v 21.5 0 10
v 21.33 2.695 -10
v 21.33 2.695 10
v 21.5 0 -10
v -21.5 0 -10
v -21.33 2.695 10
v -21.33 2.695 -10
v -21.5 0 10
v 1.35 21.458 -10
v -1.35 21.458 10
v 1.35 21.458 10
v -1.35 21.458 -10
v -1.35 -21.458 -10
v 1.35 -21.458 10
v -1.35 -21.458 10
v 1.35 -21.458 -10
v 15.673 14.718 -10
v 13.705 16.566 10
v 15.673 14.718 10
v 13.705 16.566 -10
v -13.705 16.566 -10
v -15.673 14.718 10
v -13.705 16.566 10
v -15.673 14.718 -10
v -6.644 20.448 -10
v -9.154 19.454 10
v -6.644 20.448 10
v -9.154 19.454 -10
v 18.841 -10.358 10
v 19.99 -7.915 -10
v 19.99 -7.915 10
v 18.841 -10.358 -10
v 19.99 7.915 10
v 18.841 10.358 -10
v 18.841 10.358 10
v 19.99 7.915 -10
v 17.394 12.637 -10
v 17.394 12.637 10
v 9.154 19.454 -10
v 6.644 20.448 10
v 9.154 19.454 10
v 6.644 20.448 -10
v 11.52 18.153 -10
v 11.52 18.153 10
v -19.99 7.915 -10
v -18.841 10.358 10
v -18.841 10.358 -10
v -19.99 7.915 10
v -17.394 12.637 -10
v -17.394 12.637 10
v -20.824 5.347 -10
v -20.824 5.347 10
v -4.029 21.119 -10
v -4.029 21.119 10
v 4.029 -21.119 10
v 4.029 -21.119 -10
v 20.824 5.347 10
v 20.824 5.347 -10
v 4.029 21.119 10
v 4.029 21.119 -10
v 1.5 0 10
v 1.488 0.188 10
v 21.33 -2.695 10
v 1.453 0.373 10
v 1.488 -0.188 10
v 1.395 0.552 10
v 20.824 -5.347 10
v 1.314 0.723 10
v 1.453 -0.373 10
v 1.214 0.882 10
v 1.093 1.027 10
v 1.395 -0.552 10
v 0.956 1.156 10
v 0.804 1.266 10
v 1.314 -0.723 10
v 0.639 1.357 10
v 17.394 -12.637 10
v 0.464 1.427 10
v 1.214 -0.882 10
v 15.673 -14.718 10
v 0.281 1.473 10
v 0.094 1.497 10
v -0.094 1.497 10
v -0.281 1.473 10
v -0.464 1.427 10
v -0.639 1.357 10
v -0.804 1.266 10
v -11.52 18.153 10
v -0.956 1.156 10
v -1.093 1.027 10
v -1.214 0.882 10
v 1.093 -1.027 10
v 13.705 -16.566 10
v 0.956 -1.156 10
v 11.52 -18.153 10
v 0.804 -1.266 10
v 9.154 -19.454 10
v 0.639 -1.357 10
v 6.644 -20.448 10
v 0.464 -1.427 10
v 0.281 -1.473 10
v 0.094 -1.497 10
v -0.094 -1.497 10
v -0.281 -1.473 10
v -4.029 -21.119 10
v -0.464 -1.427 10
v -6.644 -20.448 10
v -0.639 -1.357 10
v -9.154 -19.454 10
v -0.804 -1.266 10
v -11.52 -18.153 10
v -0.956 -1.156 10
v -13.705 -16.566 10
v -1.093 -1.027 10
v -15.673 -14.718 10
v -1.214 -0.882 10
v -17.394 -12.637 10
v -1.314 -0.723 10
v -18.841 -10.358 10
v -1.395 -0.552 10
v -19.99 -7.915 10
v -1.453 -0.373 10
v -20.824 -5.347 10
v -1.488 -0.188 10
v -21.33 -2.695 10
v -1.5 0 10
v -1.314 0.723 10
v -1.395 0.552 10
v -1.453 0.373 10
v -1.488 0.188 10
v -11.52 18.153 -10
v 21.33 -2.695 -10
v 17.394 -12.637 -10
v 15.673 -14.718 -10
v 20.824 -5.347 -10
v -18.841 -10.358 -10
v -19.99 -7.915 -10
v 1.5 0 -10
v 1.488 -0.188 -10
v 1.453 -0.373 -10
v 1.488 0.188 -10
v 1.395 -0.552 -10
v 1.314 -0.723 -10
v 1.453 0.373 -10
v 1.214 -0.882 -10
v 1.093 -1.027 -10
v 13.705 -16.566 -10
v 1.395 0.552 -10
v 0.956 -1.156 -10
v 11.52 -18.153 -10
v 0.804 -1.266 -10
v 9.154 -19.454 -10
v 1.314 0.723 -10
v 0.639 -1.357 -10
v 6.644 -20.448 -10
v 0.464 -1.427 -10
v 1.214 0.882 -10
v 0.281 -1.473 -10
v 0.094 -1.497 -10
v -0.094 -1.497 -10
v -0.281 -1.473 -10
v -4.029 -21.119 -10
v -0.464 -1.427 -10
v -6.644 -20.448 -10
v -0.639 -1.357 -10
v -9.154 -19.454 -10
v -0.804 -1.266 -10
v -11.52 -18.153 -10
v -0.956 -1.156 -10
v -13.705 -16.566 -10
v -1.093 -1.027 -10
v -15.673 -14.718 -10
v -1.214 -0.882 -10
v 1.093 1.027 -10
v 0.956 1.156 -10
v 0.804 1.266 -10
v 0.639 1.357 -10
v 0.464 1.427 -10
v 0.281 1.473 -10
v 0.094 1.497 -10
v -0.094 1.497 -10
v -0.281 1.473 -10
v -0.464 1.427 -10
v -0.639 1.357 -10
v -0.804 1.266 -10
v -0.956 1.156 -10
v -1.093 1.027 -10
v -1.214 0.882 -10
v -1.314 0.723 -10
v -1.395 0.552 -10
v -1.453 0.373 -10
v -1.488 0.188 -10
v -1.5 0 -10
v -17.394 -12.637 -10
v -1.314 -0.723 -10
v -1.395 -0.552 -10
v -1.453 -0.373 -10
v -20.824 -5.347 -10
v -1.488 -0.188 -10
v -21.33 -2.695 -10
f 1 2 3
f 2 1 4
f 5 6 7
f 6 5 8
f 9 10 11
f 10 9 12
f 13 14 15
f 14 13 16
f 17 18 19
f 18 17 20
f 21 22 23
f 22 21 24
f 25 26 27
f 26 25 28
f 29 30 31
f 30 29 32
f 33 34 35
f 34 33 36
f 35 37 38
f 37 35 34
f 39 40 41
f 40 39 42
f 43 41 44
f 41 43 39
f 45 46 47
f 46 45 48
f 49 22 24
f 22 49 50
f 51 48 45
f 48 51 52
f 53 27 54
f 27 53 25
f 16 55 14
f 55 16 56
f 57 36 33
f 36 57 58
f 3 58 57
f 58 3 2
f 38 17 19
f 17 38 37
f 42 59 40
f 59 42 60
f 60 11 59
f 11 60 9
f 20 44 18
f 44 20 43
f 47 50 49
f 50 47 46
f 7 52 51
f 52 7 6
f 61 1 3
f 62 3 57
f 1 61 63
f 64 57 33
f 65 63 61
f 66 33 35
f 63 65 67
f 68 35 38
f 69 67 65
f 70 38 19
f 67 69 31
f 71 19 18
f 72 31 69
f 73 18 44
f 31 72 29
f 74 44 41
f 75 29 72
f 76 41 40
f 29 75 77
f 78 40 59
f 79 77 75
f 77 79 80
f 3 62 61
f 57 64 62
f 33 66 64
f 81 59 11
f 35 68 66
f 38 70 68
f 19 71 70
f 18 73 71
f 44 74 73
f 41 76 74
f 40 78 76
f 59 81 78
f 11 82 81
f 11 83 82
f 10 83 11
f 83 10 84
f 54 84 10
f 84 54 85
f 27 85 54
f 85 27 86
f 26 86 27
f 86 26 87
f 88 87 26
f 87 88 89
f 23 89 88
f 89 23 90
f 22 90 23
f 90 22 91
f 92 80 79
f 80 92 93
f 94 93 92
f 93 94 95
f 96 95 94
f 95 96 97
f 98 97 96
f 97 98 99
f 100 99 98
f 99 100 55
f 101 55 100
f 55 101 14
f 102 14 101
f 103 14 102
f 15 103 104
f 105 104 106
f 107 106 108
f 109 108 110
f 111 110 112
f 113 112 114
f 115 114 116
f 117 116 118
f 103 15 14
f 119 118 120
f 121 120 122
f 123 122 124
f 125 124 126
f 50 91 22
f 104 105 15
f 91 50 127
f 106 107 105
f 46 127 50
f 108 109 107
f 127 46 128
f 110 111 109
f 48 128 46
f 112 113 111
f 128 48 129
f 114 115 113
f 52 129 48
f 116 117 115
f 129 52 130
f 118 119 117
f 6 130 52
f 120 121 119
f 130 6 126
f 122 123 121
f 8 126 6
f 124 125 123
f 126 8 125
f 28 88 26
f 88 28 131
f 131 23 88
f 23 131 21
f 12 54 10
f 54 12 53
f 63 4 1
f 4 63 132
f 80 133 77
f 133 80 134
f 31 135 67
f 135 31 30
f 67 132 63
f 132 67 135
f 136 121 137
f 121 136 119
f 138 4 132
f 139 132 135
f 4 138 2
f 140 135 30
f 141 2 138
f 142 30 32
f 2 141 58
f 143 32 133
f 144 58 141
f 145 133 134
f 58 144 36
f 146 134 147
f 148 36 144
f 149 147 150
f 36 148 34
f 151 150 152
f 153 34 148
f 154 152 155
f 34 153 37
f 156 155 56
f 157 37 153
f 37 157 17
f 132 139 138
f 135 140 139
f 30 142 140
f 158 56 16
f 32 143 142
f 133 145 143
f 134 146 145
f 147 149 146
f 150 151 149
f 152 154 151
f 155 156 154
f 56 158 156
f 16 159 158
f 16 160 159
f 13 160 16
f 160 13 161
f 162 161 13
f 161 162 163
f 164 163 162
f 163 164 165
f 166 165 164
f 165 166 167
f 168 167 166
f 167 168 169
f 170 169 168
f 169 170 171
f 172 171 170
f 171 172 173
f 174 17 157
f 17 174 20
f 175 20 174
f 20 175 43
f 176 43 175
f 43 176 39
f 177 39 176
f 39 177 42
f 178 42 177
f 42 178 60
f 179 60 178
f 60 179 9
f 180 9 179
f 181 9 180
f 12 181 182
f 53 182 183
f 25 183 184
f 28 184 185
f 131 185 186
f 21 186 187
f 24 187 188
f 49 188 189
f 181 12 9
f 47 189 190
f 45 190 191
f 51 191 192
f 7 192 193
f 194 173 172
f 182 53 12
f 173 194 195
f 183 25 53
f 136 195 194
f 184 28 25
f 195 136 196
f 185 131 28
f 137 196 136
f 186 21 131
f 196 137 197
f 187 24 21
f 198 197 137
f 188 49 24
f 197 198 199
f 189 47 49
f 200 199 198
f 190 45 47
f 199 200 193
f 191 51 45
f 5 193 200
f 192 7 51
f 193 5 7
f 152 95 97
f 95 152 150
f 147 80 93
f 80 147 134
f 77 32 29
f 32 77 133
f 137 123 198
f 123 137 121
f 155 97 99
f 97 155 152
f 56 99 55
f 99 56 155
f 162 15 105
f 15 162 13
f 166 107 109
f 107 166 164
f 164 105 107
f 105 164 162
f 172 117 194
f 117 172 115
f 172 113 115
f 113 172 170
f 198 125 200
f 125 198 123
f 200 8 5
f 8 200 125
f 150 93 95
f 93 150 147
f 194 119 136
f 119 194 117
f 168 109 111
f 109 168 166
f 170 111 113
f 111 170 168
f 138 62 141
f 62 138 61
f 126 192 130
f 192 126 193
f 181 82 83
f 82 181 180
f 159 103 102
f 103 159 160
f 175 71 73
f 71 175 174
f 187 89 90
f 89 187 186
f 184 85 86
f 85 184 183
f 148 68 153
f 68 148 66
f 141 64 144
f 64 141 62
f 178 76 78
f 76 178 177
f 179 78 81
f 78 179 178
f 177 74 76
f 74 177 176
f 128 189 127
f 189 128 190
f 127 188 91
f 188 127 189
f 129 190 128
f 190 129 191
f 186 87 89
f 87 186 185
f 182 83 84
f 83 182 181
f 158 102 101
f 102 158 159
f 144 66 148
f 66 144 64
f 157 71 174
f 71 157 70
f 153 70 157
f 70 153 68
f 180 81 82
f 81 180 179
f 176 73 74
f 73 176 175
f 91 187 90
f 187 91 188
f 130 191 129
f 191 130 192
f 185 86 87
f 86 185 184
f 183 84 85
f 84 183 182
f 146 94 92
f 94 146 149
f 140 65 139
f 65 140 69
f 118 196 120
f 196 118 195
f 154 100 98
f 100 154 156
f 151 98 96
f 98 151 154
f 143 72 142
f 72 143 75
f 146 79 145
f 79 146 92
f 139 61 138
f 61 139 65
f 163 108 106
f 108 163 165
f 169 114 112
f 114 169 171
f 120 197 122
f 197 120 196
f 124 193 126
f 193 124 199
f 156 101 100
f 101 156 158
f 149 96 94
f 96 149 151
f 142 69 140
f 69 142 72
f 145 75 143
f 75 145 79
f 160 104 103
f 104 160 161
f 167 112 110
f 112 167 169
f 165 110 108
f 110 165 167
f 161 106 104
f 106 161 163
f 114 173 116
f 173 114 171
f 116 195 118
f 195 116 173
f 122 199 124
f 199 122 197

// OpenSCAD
$fn = 50;


difference() {
	union() {
		translate(v = [0, 0, -10.0000000000]) {
			cylinder(h = 20, r = 21.5000000000);
		}
	}
	union() {
		translate(v = [0, 0, -100.0000000000]) {
			cylinder(h = 200, r = 1.5000000000);
		}
	}
}
